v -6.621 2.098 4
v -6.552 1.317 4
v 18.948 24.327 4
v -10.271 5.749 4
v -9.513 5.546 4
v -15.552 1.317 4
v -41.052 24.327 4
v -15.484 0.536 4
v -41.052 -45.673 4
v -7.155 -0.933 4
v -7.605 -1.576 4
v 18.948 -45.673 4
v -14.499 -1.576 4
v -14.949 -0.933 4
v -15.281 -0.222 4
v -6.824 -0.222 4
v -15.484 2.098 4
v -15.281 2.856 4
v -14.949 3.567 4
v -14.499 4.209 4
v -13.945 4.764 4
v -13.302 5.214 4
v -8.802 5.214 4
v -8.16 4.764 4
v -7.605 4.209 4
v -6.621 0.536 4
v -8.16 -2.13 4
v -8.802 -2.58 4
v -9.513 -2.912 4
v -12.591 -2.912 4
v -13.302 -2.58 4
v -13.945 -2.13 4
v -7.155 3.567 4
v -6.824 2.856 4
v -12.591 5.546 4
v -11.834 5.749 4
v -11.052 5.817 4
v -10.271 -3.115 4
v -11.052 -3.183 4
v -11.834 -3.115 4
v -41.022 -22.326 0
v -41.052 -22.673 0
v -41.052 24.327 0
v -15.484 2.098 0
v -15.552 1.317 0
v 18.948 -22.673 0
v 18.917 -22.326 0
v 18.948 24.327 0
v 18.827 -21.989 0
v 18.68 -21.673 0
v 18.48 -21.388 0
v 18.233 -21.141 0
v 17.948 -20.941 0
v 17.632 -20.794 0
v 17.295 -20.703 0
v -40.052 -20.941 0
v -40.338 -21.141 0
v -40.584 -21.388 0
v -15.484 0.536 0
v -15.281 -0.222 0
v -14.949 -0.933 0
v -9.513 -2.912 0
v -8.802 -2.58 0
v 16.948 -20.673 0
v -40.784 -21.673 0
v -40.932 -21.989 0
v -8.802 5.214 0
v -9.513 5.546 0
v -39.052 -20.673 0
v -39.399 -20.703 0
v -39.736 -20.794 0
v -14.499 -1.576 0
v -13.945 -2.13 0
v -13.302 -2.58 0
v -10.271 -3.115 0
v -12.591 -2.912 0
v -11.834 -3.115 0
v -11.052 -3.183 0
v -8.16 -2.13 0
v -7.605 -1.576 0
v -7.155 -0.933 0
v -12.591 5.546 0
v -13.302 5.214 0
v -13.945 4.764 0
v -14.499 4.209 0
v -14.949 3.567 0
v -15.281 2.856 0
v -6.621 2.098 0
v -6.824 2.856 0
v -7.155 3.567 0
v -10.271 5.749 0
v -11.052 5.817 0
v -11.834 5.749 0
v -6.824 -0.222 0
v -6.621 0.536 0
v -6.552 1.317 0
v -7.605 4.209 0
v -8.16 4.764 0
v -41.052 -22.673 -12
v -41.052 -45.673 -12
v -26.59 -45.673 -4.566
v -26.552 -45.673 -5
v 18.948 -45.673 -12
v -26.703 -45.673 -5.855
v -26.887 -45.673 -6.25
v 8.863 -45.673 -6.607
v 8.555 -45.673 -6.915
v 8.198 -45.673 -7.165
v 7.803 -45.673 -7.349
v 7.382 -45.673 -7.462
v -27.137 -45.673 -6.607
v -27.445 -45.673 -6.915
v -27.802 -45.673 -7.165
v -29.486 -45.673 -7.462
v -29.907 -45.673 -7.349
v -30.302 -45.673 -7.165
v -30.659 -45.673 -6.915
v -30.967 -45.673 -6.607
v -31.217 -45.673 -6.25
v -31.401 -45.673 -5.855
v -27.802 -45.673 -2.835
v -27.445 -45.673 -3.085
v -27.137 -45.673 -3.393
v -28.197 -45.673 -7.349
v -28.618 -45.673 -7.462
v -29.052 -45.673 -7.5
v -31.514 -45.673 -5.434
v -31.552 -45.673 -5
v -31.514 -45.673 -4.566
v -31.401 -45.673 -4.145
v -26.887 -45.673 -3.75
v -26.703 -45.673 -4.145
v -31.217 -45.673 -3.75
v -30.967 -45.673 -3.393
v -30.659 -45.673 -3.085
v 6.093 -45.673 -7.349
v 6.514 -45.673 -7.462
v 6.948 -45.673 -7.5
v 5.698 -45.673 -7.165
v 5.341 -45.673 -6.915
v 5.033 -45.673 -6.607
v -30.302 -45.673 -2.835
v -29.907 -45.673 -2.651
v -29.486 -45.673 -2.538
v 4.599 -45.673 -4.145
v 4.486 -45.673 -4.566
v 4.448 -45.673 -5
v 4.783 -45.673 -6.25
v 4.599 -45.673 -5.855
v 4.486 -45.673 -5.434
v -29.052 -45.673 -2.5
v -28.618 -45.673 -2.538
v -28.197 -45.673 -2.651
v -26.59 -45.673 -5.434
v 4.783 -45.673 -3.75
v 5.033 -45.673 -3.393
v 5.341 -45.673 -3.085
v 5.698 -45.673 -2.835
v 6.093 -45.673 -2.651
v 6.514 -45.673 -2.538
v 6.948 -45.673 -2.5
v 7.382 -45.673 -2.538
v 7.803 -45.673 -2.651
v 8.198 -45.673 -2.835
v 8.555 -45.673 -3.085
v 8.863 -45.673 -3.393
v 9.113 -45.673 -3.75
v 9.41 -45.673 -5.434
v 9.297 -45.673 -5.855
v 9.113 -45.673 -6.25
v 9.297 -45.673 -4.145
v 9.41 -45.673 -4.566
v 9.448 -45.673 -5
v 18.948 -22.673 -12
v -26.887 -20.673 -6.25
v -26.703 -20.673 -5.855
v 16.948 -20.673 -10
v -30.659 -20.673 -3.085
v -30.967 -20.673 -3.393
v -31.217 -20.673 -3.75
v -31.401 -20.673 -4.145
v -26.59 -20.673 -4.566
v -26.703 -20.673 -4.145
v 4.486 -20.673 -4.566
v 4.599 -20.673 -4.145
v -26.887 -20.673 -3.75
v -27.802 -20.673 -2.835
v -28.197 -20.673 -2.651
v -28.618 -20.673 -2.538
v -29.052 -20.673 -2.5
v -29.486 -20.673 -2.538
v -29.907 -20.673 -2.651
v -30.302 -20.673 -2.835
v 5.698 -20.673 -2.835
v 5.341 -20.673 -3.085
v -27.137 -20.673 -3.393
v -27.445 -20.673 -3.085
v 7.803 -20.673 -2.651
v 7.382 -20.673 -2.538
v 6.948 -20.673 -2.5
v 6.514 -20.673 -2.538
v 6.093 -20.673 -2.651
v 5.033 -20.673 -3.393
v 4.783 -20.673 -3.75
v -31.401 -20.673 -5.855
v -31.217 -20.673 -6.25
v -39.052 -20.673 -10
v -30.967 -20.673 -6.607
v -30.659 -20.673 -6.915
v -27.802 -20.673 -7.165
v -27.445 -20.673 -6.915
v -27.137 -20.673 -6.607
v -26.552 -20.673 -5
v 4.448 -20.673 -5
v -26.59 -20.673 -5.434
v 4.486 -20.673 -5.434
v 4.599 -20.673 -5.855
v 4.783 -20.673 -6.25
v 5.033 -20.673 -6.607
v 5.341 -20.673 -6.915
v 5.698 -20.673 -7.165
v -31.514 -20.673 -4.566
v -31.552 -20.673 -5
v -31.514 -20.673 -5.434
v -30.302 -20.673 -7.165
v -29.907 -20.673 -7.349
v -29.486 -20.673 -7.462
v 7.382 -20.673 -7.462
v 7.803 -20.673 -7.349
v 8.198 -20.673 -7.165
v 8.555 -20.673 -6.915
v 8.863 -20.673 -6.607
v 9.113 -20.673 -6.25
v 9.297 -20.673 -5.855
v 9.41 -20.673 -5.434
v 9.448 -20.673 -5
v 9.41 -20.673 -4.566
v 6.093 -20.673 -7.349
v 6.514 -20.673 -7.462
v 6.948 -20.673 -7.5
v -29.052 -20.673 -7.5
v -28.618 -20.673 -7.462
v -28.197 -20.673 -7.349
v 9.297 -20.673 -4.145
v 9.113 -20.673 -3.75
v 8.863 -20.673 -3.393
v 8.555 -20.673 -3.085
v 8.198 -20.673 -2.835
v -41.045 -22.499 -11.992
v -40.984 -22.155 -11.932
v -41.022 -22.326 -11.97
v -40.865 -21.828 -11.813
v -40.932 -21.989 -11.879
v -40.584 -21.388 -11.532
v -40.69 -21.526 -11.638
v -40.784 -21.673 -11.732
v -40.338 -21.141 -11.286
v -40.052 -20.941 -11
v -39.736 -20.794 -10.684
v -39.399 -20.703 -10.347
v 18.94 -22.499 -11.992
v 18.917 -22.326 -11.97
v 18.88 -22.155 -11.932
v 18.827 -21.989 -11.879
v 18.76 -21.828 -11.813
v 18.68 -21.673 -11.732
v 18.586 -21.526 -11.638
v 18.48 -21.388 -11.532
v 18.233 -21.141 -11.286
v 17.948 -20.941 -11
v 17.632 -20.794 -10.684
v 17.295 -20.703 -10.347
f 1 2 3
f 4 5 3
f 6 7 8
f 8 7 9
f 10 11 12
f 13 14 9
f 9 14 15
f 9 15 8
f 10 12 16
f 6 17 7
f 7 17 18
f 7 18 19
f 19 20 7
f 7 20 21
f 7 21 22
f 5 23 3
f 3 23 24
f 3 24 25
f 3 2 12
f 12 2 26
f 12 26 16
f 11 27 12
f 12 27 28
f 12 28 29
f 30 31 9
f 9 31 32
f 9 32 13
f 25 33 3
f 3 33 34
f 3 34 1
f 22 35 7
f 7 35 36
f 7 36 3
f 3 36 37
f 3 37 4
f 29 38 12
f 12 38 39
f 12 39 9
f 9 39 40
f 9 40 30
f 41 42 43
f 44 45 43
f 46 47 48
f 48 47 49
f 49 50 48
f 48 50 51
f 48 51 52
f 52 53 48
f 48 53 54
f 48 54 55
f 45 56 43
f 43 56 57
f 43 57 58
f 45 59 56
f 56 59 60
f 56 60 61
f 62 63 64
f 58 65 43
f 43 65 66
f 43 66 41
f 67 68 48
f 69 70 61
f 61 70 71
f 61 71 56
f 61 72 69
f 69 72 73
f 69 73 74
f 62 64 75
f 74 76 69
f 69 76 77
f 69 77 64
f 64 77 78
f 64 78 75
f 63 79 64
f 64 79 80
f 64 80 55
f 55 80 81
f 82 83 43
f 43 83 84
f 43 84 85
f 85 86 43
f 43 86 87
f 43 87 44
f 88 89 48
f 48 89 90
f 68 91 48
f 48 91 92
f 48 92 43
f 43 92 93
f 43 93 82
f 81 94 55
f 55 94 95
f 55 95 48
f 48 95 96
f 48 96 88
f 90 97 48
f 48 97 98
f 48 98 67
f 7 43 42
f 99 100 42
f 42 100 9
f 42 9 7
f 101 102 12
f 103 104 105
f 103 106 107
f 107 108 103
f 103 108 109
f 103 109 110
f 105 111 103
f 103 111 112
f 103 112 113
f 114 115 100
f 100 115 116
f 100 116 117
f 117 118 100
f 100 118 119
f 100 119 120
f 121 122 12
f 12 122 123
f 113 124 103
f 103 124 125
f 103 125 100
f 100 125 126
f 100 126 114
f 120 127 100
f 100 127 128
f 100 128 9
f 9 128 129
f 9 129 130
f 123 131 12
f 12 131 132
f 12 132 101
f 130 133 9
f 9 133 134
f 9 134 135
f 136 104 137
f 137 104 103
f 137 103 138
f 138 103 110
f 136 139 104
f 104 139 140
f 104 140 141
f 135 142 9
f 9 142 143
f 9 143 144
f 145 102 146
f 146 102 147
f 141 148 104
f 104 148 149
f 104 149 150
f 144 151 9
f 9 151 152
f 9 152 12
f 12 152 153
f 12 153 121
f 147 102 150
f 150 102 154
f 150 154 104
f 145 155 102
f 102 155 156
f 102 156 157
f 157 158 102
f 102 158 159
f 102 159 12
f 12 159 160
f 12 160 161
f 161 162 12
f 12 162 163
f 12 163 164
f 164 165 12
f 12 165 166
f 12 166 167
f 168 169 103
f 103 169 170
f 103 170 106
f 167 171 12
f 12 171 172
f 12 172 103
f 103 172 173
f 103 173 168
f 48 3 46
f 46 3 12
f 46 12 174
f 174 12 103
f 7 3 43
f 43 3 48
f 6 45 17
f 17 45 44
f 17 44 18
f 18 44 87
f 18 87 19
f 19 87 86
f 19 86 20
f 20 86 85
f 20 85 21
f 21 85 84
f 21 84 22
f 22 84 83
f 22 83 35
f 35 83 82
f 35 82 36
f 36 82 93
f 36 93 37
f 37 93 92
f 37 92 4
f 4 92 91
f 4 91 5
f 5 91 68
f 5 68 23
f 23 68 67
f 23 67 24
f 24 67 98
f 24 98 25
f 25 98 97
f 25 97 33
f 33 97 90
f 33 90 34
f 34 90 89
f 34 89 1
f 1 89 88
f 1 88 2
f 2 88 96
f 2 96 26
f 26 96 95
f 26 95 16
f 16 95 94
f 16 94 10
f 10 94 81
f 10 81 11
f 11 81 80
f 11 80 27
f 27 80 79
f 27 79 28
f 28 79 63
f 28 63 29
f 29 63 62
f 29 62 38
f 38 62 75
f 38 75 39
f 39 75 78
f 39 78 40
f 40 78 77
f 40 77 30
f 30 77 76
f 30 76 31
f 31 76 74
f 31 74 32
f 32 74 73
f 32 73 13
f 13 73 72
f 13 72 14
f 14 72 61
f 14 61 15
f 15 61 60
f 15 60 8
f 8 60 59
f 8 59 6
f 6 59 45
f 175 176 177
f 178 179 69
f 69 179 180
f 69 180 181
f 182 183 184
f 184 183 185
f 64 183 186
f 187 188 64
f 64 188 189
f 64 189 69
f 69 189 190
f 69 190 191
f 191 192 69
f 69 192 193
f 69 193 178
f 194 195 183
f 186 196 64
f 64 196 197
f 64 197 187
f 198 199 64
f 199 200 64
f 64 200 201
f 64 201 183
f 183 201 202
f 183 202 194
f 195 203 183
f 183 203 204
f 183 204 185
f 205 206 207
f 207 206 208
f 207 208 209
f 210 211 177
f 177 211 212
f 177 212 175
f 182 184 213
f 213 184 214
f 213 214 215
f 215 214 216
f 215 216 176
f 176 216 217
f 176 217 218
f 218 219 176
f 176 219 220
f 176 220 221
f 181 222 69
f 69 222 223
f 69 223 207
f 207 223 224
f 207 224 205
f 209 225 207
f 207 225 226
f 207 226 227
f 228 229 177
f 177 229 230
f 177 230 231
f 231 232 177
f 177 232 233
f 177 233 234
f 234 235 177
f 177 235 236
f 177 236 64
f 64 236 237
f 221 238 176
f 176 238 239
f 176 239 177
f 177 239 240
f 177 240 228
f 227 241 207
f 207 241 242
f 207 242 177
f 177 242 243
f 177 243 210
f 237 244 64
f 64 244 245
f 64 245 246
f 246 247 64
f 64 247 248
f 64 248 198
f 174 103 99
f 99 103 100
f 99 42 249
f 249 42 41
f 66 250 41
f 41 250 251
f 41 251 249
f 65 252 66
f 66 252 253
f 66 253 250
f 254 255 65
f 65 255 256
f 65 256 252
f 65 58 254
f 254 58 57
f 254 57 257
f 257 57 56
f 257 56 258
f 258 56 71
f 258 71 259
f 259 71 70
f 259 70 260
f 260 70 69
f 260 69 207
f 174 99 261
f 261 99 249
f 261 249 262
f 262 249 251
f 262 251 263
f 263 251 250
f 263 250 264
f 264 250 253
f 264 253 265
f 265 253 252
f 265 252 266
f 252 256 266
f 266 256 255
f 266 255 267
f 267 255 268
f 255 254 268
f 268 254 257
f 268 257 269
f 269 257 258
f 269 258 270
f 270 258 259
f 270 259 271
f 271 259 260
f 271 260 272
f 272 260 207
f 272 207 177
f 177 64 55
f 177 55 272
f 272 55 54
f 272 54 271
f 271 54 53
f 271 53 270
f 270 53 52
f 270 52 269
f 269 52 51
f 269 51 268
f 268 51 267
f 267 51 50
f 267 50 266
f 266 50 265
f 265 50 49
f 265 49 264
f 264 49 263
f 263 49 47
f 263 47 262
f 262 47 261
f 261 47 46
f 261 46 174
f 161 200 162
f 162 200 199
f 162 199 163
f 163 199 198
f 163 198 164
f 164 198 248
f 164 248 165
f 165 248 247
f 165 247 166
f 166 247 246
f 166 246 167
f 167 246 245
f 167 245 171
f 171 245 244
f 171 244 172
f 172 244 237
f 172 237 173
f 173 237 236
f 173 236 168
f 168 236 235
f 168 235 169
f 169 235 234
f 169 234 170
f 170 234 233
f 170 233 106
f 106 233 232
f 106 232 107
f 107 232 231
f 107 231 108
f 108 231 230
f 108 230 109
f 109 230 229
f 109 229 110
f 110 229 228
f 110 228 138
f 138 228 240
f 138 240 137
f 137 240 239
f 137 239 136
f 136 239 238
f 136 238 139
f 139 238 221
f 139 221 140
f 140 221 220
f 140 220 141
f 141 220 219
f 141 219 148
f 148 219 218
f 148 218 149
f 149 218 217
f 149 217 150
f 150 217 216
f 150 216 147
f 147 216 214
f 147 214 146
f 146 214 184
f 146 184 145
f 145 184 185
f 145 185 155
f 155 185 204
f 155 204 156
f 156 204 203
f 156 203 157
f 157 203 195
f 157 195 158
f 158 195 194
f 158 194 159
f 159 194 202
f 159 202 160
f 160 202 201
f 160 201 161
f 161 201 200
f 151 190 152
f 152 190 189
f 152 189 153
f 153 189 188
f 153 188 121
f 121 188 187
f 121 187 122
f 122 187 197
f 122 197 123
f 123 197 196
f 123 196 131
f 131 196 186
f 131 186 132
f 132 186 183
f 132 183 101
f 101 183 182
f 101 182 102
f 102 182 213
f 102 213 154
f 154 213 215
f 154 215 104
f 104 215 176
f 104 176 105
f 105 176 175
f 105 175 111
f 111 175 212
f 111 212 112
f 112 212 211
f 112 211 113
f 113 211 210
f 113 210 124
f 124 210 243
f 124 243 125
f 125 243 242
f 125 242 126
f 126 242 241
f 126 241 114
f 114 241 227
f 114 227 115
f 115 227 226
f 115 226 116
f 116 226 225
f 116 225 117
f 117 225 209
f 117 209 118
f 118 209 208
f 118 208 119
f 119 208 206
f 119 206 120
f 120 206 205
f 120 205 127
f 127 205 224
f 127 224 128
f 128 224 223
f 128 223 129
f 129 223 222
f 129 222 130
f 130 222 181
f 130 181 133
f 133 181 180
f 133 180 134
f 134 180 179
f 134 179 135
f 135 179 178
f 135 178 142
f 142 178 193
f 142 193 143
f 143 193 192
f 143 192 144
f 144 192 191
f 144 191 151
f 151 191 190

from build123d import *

# Parameters (mm, degrees)
SKETCH2_W           = 60
SKETCH2_H           = 70
SKETCH2_R           = 4.5
BOSS_EXTRUDE1_DEPTH = 4
SKETCH3_W           = 60
SKETCH3_H           = 25
BOSS_EXTRUDE2_DEPTH = 12
FILLET1_R           = 2
SKETCH4_R           = 2.5
CUT_EXTRUDE1_DEPTH  = 28


with BuildPart() as part:
    # Sketch2 → Boss-Extrude1 (new body)
    with BuildSketch(Plane.XY):
        with Locations((-11.05214497, -10.673076923)):
            Rectangle(SKETCH2_W, SKETCH2_H)
        with Locations((-11.05214497, 1.316923077)):
            Circle(SKETCH2_R, mode=Mode.SUBTRACT)
    extrude(amount=BOSS_EXTRUDE1_DEPTH)

    # Sketch3 → Boss-Extrude2 (add)
    with BuildSketch(Plane(origin=(0, 0, 0), x_dir=(-1, 0, 0), z_dir=(0, 0, -1))):
        with Locations((11.05214497, -33.173076923)):
            Rectangle(SKETCH3_W, SKETCH3_H)
    extrude(amount=BOSS_EXTRUDE2_DEPTH)

    # Fillet1
    fillet1_edges = [part.edges().sort_by_distance(p)[0] for p in [
        (-41.05214497, -20.673076923, -6),
        (18.94785503, -20.673076923, -6),
        (-11.05214497, -20.673076923, -12),
    ]]
    fillet(fillet1_edges, radius=FILLET1_R)

    # Sketch4 → Cut-Extrude1 (cut)
    with BuildSketch(Plane(origin=(0, -20.673076923, 0), x_dir=(1, 0, 0), z_dir=(0, 1, 0))):
        with Locations(Location((-29.05214497, 5, 0), (0, 0, 270))):
            Circle(SKETCH4_R)
        with Locations(Location((6.94785503, 5, 0), (0, 0, 270))):
            Circle(SKETCH4_R)
    extrude(amount=-CUT_EXTRUDE1_DEPTH, mode=Mode.SUBTRACT)


solid = part.part
